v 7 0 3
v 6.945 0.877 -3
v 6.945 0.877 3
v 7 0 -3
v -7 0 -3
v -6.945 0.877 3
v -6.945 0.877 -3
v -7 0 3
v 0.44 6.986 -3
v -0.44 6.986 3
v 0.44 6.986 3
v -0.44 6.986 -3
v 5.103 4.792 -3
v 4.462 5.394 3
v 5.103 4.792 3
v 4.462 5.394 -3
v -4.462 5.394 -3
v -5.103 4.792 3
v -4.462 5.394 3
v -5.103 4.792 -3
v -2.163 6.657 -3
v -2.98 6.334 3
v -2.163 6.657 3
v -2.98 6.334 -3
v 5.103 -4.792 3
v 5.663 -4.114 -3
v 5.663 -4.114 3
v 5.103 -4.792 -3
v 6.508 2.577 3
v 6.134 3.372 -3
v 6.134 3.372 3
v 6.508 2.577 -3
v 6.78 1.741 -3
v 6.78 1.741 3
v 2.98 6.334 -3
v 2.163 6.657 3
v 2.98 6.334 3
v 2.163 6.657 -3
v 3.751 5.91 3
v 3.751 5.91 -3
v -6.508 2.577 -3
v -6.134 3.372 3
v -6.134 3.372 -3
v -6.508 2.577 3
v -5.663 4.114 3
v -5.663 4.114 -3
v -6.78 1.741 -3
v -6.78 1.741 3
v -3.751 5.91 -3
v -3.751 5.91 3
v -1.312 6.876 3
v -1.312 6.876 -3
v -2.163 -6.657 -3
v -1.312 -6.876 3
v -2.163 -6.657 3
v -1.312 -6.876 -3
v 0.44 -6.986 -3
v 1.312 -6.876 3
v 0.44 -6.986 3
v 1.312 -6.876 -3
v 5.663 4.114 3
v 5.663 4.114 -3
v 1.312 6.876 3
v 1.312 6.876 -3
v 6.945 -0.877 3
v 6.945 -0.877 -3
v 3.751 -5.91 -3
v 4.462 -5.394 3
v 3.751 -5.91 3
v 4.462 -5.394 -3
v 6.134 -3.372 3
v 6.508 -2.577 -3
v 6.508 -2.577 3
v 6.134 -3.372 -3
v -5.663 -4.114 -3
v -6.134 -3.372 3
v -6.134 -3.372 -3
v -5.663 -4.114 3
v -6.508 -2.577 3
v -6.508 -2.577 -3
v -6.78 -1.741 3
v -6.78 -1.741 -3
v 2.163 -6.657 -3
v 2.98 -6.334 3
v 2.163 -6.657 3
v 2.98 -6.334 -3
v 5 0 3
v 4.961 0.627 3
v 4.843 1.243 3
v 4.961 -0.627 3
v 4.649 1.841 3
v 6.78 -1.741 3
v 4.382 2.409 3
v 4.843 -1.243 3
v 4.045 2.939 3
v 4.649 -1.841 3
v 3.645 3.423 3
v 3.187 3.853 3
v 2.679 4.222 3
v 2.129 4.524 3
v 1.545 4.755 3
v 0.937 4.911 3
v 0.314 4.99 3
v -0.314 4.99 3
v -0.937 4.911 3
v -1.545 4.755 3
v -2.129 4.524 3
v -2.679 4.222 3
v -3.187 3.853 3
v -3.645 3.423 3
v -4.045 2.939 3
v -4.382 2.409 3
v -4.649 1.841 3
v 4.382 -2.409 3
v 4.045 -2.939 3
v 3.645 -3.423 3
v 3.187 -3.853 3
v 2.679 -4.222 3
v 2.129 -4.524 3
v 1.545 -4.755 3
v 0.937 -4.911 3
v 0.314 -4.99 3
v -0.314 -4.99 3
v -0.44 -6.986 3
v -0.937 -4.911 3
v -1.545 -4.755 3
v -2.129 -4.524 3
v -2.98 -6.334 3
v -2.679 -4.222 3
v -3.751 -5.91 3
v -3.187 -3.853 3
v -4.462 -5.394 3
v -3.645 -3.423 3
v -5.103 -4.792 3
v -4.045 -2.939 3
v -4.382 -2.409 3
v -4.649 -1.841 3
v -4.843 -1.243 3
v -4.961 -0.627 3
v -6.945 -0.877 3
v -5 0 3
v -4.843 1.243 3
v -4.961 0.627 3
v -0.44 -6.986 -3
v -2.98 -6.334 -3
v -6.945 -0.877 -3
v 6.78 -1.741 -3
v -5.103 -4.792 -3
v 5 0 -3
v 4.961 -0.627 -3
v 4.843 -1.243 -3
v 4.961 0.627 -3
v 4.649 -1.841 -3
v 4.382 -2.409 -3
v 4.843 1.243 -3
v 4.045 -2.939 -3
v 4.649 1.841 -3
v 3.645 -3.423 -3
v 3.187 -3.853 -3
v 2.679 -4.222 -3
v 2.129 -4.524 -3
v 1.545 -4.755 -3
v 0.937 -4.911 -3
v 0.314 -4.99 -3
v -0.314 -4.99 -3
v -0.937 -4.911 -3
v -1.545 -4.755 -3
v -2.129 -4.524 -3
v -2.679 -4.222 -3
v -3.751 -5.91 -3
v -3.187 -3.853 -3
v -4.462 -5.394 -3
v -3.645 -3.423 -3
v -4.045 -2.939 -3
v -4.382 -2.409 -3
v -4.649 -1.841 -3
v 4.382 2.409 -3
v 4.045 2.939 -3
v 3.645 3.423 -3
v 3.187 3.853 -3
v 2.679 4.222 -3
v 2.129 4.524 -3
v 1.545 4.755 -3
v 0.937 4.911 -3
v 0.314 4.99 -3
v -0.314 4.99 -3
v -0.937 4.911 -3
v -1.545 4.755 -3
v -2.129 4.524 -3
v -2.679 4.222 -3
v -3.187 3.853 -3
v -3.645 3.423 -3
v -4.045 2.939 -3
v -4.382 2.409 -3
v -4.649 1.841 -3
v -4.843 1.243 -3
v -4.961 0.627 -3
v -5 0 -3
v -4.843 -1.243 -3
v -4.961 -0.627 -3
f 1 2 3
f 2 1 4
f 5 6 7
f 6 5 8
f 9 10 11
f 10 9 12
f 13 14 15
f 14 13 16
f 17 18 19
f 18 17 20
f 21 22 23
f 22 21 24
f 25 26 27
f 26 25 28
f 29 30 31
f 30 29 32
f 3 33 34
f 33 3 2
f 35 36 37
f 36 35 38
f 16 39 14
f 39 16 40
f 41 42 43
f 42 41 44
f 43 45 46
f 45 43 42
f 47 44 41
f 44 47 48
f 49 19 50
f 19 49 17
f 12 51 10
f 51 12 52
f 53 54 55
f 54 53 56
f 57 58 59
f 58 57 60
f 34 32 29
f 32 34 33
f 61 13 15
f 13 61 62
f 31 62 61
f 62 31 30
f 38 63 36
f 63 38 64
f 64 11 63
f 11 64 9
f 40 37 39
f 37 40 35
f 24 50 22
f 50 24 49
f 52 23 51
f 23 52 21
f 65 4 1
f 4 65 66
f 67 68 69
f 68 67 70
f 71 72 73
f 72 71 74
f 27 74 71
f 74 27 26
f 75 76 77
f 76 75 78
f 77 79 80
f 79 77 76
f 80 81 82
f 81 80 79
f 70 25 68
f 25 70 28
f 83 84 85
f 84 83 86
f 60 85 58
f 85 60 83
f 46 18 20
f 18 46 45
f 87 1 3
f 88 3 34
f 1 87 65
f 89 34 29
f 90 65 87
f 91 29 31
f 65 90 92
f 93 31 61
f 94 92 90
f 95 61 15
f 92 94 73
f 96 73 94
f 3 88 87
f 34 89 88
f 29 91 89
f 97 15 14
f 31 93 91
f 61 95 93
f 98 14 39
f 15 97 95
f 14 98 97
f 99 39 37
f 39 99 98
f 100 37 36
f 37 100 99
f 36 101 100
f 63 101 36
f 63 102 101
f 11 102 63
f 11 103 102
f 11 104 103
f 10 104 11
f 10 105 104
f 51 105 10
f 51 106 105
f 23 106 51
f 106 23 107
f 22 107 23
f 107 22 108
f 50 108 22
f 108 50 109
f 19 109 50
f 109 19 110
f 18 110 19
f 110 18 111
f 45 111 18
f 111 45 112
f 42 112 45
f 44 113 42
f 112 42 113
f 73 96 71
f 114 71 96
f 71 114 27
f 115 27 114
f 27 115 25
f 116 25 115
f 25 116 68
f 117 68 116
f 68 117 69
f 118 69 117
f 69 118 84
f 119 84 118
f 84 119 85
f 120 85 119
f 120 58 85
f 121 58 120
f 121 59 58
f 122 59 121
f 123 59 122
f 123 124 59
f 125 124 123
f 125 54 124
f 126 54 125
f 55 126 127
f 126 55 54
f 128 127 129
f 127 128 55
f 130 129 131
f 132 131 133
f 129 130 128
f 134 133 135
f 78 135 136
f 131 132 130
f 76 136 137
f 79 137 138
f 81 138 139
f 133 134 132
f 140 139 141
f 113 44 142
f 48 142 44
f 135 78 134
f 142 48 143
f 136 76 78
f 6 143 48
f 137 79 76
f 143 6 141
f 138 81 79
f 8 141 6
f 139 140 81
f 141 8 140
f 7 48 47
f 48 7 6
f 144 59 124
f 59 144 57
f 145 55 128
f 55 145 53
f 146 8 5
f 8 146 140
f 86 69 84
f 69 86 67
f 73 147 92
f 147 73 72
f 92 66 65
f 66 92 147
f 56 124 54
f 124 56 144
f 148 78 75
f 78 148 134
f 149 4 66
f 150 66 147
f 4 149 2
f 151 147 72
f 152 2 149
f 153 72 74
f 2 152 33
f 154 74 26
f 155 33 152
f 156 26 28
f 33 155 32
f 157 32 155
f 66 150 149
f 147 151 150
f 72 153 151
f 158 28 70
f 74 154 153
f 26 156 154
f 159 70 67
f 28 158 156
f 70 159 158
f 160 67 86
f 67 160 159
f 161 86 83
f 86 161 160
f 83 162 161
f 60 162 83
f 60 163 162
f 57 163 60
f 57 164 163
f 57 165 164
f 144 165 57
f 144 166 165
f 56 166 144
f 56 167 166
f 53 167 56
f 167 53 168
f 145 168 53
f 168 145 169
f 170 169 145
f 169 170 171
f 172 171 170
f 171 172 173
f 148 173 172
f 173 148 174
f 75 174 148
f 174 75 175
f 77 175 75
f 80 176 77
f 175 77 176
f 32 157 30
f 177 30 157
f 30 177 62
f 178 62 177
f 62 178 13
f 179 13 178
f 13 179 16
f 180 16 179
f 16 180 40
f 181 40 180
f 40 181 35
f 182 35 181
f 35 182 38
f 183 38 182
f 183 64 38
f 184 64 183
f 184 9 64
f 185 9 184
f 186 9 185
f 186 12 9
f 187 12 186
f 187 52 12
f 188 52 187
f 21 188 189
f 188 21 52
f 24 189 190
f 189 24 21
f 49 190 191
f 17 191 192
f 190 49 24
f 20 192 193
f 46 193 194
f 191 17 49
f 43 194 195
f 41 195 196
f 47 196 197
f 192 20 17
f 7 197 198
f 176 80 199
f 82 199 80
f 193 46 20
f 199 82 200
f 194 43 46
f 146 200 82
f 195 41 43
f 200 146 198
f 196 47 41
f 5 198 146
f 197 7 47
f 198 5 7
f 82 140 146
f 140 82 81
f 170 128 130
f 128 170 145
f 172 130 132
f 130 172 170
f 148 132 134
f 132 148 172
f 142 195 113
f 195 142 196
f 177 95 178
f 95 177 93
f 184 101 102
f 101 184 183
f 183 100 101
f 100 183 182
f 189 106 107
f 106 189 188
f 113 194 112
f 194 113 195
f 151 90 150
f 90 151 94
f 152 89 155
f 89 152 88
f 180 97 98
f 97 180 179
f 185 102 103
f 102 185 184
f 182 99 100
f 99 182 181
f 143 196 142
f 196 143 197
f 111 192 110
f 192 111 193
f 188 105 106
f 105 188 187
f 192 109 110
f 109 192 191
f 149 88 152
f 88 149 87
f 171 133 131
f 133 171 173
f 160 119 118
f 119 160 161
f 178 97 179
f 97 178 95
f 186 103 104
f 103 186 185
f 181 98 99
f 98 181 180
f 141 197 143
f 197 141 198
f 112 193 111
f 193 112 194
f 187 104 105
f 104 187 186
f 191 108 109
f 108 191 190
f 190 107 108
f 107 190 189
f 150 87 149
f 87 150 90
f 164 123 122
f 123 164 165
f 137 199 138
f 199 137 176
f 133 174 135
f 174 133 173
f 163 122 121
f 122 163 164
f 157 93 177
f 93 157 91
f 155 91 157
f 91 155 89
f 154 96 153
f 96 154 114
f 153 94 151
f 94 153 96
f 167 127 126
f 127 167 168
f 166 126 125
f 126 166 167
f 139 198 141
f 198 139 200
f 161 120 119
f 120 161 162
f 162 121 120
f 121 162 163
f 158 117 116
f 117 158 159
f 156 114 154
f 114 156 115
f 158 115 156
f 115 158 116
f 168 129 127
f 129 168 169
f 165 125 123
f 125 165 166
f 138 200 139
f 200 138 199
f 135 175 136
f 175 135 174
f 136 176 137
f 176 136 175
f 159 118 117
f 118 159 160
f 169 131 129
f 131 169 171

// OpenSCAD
$fn = 50;


difference() {
	union() {
		translate(v = [0, 0, -3.0000000000]) {
			cylinder(h = 6, r = 7.0000000000);
		}
	}
	union() {
		translate(v = [0, 0, -100.0000000000]) {
			cylinder(h = 200, r = 5.0000000000);
		}
	}
}
